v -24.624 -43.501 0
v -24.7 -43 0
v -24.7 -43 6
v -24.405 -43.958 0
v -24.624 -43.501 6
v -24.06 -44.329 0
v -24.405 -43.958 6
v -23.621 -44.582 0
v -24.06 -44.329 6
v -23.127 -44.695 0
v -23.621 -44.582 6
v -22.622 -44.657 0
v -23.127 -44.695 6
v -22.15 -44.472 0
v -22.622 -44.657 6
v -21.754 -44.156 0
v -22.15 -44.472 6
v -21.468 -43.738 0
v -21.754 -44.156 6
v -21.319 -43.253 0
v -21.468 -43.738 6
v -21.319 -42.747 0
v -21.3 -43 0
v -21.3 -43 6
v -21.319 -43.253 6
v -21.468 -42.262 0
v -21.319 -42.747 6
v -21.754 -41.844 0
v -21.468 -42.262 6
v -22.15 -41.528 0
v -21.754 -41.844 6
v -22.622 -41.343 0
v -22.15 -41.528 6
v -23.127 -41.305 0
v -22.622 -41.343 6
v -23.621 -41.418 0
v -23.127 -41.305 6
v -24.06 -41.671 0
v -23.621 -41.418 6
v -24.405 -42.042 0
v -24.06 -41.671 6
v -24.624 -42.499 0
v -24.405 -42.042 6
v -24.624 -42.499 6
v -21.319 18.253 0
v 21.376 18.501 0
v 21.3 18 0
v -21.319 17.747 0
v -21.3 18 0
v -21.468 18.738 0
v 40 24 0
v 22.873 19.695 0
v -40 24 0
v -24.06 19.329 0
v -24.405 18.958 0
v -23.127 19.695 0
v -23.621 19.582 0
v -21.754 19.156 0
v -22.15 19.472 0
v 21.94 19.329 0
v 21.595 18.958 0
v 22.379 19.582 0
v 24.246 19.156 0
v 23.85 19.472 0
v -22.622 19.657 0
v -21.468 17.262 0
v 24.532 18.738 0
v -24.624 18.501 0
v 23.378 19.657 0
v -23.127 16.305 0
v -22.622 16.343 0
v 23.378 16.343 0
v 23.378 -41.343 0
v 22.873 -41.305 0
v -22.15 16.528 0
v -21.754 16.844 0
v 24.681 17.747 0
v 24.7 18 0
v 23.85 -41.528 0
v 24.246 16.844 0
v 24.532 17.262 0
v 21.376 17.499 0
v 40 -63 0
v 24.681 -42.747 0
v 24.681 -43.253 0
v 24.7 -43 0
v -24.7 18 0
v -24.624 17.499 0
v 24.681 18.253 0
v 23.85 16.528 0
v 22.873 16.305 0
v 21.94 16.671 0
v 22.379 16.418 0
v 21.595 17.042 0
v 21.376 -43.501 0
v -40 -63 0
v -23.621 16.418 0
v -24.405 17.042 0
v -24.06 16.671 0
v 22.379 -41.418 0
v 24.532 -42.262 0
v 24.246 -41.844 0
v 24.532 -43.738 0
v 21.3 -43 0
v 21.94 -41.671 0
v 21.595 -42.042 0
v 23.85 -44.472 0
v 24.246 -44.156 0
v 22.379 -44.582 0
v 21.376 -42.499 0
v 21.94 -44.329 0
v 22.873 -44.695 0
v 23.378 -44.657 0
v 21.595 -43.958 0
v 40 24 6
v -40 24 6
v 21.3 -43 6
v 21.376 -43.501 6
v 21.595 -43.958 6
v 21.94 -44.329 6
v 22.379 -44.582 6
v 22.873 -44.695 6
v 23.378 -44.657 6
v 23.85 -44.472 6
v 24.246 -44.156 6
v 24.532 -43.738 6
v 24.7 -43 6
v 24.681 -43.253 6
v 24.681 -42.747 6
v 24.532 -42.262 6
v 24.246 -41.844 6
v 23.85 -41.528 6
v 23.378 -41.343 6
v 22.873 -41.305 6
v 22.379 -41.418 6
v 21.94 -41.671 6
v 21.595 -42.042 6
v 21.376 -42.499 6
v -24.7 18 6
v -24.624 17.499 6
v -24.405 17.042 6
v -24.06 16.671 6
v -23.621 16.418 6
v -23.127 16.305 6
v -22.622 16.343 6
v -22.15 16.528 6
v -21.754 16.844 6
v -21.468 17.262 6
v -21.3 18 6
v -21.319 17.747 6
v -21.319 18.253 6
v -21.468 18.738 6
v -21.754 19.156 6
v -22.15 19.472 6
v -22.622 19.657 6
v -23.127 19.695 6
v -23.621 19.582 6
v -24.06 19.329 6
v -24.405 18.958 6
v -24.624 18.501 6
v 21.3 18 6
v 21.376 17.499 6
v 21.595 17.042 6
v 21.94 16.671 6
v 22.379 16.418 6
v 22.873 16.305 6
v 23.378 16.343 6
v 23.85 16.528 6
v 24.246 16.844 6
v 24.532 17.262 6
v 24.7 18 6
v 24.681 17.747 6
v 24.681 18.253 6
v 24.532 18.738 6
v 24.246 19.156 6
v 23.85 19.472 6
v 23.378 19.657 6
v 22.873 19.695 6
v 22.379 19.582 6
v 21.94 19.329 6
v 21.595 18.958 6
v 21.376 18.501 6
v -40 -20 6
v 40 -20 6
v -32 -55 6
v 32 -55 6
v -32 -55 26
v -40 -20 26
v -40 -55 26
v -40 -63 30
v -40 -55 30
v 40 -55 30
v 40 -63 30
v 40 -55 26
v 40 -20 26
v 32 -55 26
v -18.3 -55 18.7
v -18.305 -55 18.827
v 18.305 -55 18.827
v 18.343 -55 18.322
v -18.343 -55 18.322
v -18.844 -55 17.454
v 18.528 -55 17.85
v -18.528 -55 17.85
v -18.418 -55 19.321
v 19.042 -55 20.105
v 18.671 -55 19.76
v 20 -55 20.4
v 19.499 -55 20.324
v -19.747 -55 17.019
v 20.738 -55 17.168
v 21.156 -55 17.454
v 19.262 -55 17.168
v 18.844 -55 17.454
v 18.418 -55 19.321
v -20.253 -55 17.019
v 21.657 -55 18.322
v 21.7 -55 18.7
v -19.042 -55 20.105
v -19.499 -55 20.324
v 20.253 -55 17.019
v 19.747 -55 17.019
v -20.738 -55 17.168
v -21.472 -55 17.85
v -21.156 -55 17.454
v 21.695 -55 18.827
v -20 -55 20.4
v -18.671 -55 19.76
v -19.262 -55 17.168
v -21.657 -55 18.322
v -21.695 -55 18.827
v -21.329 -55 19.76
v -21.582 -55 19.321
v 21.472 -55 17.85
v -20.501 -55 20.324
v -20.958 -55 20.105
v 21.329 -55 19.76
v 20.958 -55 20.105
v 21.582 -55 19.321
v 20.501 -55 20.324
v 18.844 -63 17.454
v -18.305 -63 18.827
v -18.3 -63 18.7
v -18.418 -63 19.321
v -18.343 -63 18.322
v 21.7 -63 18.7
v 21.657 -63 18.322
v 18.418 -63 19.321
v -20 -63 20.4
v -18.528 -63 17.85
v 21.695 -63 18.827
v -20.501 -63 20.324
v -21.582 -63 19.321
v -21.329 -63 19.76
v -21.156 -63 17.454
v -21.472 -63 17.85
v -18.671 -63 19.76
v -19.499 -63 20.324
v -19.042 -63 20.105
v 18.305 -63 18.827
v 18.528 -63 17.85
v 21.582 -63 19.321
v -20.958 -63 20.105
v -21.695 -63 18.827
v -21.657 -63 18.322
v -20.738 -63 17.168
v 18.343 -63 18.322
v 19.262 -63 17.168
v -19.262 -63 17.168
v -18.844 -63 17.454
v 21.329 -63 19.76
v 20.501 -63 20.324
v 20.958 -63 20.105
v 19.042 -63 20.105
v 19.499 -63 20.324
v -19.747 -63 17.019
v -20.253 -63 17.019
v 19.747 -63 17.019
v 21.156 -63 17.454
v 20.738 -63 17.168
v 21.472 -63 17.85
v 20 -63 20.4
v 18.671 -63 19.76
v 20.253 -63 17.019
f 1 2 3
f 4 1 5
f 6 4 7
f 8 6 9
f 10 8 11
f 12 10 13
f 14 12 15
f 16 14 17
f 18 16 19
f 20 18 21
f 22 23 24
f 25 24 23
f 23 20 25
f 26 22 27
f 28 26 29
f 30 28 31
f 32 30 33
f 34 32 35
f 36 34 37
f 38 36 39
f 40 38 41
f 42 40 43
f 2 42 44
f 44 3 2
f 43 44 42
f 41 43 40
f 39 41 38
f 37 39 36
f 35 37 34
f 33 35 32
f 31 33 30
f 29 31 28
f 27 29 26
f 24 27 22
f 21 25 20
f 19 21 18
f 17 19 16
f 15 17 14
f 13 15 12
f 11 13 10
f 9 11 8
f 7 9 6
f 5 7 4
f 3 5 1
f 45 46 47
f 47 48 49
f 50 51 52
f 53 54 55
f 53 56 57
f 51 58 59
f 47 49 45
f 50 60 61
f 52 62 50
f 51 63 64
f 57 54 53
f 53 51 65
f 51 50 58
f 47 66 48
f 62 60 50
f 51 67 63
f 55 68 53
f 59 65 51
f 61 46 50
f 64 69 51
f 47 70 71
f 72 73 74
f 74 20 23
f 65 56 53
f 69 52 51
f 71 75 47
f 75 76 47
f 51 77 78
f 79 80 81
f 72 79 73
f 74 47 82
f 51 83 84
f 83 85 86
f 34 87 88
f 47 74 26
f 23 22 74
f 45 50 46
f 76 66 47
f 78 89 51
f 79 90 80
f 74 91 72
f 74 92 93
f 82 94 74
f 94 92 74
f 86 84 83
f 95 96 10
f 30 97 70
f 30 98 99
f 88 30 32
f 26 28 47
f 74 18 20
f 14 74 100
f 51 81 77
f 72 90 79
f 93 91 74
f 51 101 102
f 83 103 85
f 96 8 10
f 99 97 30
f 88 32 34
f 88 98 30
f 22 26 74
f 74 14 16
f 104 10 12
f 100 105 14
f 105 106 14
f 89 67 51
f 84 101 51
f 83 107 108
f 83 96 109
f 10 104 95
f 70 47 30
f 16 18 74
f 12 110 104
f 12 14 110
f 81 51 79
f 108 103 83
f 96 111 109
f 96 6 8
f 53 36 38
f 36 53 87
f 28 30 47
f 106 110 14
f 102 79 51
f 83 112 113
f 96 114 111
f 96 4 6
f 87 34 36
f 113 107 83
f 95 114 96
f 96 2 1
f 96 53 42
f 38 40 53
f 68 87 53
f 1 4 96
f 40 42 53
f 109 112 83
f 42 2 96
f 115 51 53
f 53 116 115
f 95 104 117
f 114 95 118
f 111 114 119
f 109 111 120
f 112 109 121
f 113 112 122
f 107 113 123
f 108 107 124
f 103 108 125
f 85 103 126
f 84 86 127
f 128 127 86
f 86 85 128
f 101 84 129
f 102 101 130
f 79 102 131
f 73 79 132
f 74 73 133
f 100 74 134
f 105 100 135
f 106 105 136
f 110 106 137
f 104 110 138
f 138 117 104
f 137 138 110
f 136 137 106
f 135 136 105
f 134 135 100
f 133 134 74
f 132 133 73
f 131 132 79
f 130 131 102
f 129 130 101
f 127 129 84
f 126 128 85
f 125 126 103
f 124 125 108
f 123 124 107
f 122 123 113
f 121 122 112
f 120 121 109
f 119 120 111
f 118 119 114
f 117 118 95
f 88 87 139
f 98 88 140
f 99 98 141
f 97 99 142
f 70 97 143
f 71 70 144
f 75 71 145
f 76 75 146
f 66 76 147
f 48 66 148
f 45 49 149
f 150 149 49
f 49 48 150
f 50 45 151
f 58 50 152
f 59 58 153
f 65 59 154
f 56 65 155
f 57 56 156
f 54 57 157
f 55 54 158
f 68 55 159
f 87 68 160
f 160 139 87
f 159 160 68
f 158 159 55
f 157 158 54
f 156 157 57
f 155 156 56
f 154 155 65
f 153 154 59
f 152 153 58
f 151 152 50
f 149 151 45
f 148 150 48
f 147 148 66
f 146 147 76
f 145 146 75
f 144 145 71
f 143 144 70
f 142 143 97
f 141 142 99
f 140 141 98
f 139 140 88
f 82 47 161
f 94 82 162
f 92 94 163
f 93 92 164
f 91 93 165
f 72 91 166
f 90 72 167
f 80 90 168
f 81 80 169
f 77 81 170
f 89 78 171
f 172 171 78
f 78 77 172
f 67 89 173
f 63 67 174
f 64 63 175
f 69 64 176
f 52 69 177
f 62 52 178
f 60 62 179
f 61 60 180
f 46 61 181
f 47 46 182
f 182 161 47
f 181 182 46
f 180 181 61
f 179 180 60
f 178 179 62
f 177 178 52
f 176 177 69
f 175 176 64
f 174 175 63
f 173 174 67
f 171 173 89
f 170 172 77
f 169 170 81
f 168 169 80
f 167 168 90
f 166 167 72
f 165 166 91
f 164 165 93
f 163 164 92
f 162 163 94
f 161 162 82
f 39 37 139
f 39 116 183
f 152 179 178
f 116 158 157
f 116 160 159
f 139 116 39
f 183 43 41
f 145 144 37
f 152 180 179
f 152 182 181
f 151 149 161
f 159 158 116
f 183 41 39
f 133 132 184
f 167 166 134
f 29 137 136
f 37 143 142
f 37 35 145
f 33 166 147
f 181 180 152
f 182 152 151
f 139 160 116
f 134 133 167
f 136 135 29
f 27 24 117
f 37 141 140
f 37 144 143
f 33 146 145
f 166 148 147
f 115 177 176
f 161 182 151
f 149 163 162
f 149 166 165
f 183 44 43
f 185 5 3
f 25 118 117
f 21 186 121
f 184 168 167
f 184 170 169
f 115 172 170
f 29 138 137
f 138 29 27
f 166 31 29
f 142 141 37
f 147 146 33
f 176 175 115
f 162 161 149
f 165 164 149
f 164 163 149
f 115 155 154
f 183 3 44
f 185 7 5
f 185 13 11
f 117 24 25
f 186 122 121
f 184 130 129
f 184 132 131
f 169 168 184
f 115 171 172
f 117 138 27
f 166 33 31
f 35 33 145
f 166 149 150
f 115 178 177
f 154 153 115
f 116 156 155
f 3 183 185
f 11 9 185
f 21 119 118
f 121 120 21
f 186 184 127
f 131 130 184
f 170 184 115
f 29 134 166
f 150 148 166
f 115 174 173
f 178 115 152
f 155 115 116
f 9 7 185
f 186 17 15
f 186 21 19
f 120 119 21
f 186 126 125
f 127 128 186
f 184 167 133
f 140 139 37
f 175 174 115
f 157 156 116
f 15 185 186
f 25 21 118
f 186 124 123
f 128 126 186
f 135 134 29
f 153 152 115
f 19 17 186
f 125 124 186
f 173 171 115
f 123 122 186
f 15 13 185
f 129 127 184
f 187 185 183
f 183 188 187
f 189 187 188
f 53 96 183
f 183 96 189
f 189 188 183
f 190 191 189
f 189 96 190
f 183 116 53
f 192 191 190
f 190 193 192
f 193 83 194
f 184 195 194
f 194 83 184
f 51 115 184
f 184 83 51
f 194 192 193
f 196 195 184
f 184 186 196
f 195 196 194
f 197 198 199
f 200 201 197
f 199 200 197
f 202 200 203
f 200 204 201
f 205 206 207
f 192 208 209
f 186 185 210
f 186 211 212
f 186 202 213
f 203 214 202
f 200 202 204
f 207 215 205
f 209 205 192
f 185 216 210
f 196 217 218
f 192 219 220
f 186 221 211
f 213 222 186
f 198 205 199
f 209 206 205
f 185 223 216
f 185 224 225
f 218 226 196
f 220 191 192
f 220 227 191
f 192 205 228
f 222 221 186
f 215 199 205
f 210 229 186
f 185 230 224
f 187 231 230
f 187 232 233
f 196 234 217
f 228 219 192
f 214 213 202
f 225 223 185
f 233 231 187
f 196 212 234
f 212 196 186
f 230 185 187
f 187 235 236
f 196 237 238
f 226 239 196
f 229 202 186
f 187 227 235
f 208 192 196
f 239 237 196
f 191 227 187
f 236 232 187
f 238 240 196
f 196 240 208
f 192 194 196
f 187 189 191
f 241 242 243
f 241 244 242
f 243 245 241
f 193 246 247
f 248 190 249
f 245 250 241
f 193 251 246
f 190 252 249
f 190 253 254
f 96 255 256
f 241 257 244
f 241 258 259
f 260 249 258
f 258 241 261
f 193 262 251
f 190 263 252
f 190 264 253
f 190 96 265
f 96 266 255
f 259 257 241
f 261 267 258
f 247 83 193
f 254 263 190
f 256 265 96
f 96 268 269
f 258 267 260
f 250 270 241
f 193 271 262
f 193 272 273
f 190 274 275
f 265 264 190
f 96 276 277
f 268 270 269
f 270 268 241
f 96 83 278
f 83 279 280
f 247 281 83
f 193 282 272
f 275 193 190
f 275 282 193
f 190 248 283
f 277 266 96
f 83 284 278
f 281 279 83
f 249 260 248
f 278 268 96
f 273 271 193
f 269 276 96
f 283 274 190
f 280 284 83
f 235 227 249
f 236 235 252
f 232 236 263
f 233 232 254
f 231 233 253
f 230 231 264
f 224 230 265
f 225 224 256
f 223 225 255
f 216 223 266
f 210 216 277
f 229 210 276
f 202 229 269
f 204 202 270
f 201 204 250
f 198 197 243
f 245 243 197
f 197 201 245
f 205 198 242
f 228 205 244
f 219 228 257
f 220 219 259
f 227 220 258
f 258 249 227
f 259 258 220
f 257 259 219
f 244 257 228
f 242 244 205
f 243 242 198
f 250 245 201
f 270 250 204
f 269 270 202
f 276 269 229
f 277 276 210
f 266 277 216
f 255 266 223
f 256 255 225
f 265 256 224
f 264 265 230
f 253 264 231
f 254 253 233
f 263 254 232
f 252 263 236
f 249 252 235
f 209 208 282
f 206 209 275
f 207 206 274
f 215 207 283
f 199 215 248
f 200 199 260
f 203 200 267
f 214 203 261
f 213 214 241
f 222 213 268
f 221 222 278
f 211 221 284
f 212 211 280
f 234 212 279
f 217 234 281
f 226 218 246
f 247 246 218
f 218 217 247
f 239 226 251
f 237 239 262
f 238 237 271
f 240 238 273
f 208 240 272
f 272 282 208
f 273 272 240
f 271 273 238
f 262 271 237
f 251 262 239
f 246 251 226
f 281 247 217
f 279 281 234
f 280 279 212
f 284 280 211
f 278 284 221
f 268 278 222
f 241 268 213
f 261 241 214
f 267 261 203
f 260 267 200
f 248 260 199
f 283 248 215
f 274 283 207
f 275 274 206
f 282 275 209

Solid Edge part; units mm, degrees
sketch "Sketch1" plane through (0, 0, 0) normal (0, 0, 1) x (1, 0, 0)
  line L0 (-40, -63) -> (40, -63)
  line L1 (40, -63) -> (40, 24)
  line L2 (40, 24) -> (-40, 24)
  line L3 (-40, 24) -> (-40, -63)
  circle A0 centre (-23, -43) radius 1.7
  circle A1 centre (23, -43) radius 1.7
  circle A2 centre (-23, 18) radius 1.7
  circle A3 centre (23, 18) radius 1.7
extrude "Protrusion1" add sketch "Sketch1" along normal blind 6
sketch "Sketch2" plane through (0, 0, 6) normal (0, 0, 1) x (1, 0, 0)
  line L0 (-40, -63) -> (40, -63)
  line L1 (40, -63) -> (40, -55)
  line L2 (40, -55) -> (-40, -55)
  line L3 (-40, -55) -> (-40, -63)
extrude "ExtrudedProtrusion_2" add sketch "Sketch2" along normal blind 24
sketch "Sketch3" plane through (0, 0, 6) normal (0, 0, 1) x (1, 0, 0)
  line L0 (-40, -55) -> (-32, -55)
  line L1 (-32, -55) -> (-40, -20)
  line L2 (-40, -20) -> (-40, -55)
extrude "ExtrudedProtrusion_3" add sketch "Sketch3" along normal blind 20
sketch "Sketch4" plane through (0, 0, 6) normal (0, 0, 1) x (1, 0, 0)
  line L0 (40, -55) -> (32, -55)
  line L1 (32, -55) -> (40, -20)
  line L2 (40, -20) -> (40, -55)
extrude "ExtrudedProtrusion_4" add sketch "Sketch4" along normal blind 20
sketch "Sketch5" plane through (0, -55, 0) normal (0, -1, 0) x (1, 0, 0)
  circle A0 centre (-20, 18.7) radius 1.7
  circle A1 centre (20, 18.7) radius 1.7
extrude "ExtrudedCutout_1" cut sketch "Sketch5" along normal blind 8
